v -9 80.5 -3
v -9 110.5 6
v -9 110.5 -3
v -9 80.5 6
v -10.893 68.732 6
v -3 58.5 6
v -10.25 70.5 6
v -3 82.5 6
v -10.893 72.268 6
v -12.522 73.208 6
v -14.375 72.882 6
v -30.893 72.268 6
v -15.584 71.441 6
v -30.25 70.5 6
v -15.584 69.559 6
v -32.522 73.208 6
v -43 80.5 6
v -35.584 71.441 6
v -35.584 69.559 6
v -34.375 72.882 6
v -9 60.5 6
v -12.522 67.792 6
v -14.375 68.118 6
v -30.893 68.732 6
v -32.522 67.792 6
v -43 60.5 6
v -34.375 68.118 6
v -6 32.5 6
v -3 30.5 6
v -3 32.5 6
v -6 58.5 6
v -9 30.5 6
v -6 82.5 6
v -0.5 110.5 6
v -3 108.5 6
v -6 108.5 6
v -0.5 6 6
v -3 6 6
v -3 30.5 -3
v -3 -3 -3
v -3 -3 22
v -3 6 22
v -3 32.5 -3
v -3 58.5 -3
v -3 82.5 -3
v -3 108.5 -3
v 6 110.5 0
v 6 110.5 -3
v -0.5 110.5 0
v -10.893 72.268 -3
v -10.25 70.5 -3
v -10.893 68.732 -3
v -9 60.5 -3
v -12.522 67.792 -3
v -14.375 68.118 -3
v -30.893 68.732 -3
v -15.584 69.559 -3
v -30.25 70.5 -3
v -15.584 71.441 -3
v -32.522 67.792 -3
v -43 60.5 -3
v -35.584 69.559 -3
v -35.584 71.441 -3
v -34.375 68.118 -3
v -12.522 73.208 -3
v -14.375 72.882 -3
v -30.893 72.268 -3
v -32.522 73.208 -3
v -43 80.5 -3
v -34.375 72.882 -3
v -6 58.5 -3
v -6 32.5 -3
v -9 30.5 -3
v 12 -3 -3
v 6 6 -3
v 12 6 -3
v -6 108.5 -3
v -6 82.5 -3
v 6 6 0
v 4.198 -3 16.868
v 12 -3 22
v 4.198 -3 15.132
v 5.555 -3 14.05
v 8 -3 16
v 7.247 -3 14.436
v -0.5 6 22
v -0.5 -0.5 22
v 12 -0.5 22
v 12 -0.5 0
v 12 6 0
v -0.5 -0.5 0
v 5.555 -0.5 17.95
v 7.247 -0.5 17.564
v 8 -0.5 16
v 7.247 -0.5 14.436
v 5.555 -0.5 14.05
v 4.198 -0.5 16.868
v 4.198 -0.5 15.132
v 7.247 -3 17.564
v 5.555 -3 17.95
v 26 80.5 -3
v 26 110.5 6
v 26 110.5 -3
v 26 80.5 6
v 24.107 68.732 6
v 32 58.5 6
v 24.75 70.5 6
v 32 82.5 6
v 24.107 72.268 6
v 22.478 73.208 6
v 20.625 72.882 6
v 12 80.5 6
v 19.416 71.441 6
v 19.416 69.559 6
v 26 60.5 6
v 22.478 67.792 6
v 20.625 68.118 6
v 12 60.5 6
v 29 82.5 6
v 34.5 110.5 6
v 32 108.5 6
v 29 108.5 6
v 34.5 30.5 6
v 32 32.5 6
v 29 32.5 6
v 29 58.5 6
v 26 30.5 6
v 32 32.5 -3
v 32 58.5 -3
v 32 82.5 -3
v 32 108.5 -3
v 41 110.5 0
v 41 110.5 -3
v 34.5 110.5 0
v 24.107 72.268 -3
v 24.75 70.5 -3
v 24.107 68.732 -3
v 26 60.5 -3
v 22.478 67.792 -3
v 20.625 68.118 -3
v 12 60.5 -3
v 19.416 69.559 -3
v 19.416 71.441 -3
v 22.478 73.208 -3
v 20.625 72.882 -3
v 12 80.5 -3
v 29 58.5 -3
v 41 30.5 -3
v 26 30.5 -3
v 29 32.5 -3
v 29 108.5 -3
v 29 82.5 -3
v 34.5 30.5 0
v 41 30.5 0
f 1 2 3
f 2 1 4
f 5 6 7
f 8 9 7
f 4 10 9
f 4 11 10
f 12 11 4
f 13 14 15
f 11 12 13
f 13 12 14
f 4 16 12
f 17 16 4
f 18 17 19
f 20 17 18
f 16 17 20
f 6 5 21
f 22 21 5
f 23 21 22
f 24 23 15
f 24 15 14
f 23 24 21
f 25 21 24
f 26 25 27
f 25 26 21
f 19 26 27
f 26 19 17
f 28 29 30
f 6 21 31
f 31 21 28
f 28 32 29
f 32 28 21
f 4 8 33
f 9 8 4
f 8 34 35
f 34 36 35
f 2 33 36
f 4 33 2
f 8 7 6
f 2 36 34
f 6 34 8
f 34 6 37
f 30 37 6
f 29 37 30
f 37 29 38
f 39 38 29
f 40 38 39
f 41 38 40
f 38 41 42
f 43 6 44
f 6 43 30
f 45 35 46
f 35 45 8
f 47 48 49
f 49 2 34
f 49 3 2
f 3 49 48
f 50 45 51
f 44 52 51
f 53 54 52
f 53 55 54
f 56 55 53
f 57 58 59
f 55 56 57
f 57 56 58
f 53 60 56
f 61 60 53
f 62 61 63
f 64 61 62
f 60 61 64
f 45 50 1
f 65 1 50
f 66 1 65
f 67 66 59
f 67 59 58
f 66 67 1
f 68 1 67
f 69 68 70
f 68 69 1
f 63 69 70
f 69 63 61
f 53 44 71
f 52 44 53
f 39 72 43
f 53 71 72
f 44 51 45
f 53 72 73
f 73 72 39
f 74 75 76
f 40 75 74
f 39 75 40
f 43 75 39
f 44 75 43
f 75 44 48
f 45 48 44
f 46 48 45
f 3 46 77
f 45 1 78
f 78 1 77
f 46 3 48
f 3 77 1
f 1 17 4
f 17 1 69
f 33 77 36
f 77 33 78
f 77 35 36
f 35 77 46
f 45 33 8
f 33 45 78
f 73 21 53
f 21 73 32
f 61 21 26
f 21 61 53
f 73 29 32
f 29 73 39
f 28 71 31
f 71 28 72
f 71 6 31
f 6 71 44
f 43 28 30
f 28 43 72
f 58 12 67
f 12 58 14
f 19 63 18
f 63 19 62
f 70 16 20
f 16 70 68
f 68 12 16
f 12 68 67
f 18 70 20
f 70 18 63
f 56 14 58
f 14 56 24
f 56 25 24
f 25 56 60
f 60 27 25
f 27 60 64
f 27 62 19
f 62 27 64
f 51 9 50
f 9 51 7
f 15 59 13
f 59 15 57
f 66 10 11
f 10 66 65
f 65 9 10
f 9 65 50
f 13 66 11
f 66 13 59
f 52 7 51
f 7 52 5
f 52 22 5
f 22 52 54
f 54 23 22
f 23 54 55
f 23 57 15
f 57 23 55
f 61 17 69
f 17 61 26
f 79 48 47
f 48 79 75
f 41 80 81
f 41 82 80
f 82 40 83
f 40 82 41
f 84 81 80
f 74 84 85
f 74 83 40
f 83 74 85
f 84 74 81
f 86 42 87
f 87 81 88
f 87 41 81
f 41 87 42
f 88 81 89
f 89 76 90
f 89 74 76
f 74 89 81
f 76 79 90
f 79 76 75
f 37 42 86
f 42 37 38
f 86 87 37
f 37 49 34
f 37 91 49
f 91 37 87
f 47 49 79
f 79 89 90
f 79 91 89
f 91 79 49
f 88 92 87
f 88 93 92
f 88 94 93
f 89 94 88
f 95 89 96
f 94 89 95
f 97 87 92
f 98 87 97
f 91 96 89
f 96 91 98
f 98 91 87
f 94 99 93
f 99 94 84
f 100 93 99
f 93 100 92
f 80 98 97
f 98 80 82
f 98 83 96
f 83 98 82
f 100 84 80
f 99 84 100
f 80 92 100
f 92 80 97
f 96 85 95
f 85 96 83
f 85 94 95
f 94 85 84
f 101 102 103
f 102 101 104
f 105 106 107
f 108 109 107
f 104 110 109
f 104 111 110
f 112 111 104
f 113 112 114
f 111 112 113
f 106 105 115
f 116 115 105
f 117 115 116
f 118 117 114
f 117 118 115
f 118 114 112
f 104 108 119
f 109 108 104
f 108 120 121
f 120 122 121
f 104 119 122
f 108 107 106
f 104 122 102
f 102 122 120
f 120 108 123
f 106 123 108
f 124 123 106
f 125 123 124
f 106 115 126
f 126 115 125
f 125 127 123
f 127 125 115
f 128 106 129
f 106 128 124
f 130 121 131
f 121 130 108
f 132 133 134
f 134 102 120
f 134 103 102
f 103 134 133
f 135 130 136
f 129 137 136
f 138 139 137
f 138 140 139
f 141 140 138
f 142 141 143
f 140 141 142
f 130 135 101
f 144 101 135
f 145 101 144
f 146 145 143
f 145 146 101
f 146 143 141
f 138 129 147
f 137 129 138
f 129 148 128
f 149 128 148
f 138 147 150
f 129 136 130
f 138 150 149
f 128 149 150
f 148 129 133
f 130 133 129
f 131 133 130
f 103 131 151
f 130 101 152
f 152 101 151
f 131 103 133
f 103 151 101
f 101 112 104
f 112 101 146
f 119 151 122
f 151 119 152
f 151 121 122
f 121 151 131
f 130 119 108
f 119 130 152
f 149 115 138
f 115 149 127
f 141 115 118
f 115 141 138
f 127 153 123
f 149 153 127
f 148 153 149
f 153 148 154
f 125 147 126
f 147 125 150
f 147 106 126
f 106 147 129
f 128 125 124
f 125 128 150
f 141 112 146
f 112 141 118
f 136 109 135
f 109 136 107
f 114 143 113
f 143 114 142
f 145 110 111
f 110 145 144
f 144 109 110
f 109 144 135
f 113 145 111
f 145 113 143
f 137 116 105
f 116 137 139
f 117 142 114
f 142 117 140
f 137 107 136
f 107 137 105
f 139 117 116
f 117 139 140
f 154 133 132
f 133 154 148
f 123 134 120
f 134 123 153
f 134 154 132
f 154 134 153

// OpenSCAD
ps_slip = 1;
ps_h = 86+ps_slip;
ps_w = 150+ps_slip;
ps_len = 140+ps_slip;
hole_bl = [6,16];
hole_br = [ps_w-30, 6];
hole_tl = [6, ps_h-6];
hole_tr = [ps_w-6, ps_h-6];
hole_diam = 4;
hole_pad = 12;
wall = 3;
beam = 6;
hanger_len = 20; // single wide
hanger_w = 20*2; // two tall
hanger_thick = beam+wall;
hanger_hole_diam = 5.5;
hanger_hole_offset = 10;
hanger_hole_spacing = 20;
strap_w = 30;
strap_margin = 2;
strap_holder_sz = 6;
strap_slot = 3;


module top_mount() {
	difference() {
		translate([-wall,-wall,-wall]) 
		union() {
			// block for bar across
			cube([beam+wall, wall+ps_len/2+hanger_len/2+strap_w, beam+wall]);
			// beam going around corner and up to left hole
			cube([beam+wall+hole_pad/2, beam+wall, hole_bl[1]+hole_pad/2+wall]);
			// right strap holder
			translate([-strap_holder_sz,wall+ps_len/2+hanger_len/2,0])
				difference() {
					cube([strap_holder_sz,strap_w,beam+wall]);
					translate([strap_holder_sz/2-strap_slot/2+wall/2,strap_margin,0])
						cube([strap_slot,strap_w-2*strap_margin,beam+wall]);
				}
			// left strap holder
			translate([-strap_holder_sz,wall+ps_len/2-hanger_len/2-strap_w,0])
				difference() {
					cube([strap_holder_sz,strap_w,beam+wall]);
					translate([strap_holder_sz/2-strap_slot/2+wall/2,strap_margin,0])
						cube([strap_slot,strap_w-2*strap_margin,beam+wall]);
				}
			// hanger
			translate([-(hanger_w), ps_len/2-hanger_len/2+wall, 0]) 
				difference() {
					cube([hanger_w,hanger_len,hanger_thick]);
					for (row = [0:1]) 
						for (col = [0:1])
							translate([
									hanger_hole_offset+row*hanger_hole_spacing, 
									hanger_hole_offset+col*hanger_hole_spacing,0]) 
								cylinder(r=hanger_hole_diam/2, h=hanger_thick);
				}
		}
		// cut out for body of PS
		translate([-ps_slip/2,-ps_slip/2,0]) cube([ps_w,ps_len,ps_h]);
		// cut through so bottom of base is open instead of solid
		translate([beam,beam,-wall]) cube([ps_w-2*beam,ps_len-2*beam,ps_h]);
		// drill mounting hole
		translate([hole_bl[0],0,hole_bl[1]]) rotate([90,0,0]) 
			cylinder(r=hole_diam/2, h=wall);
	}
}

module bottom_mount() {
	difference() {
		translate([-wall,-wall,-wall]) 
		union() {
			// block for bar across
			translate([0,ps_len/2-hanger_len/2-strap_w+wall,0])
				cube([beam+wall, hanger_len+strap_w*2, beam+wall]);
			// right strap holder
			translate([-strap_holder_sz,wall+ps_len/2+hanger_len/2,0])
				difference() {
					cube([strap_holder_sz,strap_w,beam+wall]);
					translate([strap_holder_sz/2-strap_slot/2+wall/2,strap_margin,0])
						cube([strap_slot,strap_w-2*strap_margin,beam+wall]);
				}
			// left strap holder
			translate([-strap_holder_sz,wall+ps_len/2-hanger_len/2-strap_w,0])
				difference() {
					cube([strap_holder_sz,strap_w,beam+wall]);
					translate([strap_holder_sz/2-strap_slot/2+wall/2,strap_margin,0])
						cube([strap_slot,strap_w-2*strap_margin,beam+wall]);
				}
			// hanger
			translate([-hanger_w/2, ps_len/2-hanger_len/2+wall, 0]) 
				difference() {
					cube([hanger_w/2,hanger_len,hanger_thick]);
					translate([-hanger_hole_offset+hanger_hole_spacing, 
									hanger_hole_offset,0]) 
								cylinder(r=hanger_hole_diam/2, h=hanger_thick);
				}
		}
		// cut out for body of PS
		translate([-ps_slip/2,-ps_slip/2,0]) cube([ps_w,ps_len,ps_h]);
		// cut through so bottom of base is open instead of solid
		translate([beam,beam,-wall]) cube([ps_w-2*beam,ps_len-2*beam,ps_h]);
	}
}

top_mount();
// bottom_mount();
translate([35,0,0]) bottom_mount();
